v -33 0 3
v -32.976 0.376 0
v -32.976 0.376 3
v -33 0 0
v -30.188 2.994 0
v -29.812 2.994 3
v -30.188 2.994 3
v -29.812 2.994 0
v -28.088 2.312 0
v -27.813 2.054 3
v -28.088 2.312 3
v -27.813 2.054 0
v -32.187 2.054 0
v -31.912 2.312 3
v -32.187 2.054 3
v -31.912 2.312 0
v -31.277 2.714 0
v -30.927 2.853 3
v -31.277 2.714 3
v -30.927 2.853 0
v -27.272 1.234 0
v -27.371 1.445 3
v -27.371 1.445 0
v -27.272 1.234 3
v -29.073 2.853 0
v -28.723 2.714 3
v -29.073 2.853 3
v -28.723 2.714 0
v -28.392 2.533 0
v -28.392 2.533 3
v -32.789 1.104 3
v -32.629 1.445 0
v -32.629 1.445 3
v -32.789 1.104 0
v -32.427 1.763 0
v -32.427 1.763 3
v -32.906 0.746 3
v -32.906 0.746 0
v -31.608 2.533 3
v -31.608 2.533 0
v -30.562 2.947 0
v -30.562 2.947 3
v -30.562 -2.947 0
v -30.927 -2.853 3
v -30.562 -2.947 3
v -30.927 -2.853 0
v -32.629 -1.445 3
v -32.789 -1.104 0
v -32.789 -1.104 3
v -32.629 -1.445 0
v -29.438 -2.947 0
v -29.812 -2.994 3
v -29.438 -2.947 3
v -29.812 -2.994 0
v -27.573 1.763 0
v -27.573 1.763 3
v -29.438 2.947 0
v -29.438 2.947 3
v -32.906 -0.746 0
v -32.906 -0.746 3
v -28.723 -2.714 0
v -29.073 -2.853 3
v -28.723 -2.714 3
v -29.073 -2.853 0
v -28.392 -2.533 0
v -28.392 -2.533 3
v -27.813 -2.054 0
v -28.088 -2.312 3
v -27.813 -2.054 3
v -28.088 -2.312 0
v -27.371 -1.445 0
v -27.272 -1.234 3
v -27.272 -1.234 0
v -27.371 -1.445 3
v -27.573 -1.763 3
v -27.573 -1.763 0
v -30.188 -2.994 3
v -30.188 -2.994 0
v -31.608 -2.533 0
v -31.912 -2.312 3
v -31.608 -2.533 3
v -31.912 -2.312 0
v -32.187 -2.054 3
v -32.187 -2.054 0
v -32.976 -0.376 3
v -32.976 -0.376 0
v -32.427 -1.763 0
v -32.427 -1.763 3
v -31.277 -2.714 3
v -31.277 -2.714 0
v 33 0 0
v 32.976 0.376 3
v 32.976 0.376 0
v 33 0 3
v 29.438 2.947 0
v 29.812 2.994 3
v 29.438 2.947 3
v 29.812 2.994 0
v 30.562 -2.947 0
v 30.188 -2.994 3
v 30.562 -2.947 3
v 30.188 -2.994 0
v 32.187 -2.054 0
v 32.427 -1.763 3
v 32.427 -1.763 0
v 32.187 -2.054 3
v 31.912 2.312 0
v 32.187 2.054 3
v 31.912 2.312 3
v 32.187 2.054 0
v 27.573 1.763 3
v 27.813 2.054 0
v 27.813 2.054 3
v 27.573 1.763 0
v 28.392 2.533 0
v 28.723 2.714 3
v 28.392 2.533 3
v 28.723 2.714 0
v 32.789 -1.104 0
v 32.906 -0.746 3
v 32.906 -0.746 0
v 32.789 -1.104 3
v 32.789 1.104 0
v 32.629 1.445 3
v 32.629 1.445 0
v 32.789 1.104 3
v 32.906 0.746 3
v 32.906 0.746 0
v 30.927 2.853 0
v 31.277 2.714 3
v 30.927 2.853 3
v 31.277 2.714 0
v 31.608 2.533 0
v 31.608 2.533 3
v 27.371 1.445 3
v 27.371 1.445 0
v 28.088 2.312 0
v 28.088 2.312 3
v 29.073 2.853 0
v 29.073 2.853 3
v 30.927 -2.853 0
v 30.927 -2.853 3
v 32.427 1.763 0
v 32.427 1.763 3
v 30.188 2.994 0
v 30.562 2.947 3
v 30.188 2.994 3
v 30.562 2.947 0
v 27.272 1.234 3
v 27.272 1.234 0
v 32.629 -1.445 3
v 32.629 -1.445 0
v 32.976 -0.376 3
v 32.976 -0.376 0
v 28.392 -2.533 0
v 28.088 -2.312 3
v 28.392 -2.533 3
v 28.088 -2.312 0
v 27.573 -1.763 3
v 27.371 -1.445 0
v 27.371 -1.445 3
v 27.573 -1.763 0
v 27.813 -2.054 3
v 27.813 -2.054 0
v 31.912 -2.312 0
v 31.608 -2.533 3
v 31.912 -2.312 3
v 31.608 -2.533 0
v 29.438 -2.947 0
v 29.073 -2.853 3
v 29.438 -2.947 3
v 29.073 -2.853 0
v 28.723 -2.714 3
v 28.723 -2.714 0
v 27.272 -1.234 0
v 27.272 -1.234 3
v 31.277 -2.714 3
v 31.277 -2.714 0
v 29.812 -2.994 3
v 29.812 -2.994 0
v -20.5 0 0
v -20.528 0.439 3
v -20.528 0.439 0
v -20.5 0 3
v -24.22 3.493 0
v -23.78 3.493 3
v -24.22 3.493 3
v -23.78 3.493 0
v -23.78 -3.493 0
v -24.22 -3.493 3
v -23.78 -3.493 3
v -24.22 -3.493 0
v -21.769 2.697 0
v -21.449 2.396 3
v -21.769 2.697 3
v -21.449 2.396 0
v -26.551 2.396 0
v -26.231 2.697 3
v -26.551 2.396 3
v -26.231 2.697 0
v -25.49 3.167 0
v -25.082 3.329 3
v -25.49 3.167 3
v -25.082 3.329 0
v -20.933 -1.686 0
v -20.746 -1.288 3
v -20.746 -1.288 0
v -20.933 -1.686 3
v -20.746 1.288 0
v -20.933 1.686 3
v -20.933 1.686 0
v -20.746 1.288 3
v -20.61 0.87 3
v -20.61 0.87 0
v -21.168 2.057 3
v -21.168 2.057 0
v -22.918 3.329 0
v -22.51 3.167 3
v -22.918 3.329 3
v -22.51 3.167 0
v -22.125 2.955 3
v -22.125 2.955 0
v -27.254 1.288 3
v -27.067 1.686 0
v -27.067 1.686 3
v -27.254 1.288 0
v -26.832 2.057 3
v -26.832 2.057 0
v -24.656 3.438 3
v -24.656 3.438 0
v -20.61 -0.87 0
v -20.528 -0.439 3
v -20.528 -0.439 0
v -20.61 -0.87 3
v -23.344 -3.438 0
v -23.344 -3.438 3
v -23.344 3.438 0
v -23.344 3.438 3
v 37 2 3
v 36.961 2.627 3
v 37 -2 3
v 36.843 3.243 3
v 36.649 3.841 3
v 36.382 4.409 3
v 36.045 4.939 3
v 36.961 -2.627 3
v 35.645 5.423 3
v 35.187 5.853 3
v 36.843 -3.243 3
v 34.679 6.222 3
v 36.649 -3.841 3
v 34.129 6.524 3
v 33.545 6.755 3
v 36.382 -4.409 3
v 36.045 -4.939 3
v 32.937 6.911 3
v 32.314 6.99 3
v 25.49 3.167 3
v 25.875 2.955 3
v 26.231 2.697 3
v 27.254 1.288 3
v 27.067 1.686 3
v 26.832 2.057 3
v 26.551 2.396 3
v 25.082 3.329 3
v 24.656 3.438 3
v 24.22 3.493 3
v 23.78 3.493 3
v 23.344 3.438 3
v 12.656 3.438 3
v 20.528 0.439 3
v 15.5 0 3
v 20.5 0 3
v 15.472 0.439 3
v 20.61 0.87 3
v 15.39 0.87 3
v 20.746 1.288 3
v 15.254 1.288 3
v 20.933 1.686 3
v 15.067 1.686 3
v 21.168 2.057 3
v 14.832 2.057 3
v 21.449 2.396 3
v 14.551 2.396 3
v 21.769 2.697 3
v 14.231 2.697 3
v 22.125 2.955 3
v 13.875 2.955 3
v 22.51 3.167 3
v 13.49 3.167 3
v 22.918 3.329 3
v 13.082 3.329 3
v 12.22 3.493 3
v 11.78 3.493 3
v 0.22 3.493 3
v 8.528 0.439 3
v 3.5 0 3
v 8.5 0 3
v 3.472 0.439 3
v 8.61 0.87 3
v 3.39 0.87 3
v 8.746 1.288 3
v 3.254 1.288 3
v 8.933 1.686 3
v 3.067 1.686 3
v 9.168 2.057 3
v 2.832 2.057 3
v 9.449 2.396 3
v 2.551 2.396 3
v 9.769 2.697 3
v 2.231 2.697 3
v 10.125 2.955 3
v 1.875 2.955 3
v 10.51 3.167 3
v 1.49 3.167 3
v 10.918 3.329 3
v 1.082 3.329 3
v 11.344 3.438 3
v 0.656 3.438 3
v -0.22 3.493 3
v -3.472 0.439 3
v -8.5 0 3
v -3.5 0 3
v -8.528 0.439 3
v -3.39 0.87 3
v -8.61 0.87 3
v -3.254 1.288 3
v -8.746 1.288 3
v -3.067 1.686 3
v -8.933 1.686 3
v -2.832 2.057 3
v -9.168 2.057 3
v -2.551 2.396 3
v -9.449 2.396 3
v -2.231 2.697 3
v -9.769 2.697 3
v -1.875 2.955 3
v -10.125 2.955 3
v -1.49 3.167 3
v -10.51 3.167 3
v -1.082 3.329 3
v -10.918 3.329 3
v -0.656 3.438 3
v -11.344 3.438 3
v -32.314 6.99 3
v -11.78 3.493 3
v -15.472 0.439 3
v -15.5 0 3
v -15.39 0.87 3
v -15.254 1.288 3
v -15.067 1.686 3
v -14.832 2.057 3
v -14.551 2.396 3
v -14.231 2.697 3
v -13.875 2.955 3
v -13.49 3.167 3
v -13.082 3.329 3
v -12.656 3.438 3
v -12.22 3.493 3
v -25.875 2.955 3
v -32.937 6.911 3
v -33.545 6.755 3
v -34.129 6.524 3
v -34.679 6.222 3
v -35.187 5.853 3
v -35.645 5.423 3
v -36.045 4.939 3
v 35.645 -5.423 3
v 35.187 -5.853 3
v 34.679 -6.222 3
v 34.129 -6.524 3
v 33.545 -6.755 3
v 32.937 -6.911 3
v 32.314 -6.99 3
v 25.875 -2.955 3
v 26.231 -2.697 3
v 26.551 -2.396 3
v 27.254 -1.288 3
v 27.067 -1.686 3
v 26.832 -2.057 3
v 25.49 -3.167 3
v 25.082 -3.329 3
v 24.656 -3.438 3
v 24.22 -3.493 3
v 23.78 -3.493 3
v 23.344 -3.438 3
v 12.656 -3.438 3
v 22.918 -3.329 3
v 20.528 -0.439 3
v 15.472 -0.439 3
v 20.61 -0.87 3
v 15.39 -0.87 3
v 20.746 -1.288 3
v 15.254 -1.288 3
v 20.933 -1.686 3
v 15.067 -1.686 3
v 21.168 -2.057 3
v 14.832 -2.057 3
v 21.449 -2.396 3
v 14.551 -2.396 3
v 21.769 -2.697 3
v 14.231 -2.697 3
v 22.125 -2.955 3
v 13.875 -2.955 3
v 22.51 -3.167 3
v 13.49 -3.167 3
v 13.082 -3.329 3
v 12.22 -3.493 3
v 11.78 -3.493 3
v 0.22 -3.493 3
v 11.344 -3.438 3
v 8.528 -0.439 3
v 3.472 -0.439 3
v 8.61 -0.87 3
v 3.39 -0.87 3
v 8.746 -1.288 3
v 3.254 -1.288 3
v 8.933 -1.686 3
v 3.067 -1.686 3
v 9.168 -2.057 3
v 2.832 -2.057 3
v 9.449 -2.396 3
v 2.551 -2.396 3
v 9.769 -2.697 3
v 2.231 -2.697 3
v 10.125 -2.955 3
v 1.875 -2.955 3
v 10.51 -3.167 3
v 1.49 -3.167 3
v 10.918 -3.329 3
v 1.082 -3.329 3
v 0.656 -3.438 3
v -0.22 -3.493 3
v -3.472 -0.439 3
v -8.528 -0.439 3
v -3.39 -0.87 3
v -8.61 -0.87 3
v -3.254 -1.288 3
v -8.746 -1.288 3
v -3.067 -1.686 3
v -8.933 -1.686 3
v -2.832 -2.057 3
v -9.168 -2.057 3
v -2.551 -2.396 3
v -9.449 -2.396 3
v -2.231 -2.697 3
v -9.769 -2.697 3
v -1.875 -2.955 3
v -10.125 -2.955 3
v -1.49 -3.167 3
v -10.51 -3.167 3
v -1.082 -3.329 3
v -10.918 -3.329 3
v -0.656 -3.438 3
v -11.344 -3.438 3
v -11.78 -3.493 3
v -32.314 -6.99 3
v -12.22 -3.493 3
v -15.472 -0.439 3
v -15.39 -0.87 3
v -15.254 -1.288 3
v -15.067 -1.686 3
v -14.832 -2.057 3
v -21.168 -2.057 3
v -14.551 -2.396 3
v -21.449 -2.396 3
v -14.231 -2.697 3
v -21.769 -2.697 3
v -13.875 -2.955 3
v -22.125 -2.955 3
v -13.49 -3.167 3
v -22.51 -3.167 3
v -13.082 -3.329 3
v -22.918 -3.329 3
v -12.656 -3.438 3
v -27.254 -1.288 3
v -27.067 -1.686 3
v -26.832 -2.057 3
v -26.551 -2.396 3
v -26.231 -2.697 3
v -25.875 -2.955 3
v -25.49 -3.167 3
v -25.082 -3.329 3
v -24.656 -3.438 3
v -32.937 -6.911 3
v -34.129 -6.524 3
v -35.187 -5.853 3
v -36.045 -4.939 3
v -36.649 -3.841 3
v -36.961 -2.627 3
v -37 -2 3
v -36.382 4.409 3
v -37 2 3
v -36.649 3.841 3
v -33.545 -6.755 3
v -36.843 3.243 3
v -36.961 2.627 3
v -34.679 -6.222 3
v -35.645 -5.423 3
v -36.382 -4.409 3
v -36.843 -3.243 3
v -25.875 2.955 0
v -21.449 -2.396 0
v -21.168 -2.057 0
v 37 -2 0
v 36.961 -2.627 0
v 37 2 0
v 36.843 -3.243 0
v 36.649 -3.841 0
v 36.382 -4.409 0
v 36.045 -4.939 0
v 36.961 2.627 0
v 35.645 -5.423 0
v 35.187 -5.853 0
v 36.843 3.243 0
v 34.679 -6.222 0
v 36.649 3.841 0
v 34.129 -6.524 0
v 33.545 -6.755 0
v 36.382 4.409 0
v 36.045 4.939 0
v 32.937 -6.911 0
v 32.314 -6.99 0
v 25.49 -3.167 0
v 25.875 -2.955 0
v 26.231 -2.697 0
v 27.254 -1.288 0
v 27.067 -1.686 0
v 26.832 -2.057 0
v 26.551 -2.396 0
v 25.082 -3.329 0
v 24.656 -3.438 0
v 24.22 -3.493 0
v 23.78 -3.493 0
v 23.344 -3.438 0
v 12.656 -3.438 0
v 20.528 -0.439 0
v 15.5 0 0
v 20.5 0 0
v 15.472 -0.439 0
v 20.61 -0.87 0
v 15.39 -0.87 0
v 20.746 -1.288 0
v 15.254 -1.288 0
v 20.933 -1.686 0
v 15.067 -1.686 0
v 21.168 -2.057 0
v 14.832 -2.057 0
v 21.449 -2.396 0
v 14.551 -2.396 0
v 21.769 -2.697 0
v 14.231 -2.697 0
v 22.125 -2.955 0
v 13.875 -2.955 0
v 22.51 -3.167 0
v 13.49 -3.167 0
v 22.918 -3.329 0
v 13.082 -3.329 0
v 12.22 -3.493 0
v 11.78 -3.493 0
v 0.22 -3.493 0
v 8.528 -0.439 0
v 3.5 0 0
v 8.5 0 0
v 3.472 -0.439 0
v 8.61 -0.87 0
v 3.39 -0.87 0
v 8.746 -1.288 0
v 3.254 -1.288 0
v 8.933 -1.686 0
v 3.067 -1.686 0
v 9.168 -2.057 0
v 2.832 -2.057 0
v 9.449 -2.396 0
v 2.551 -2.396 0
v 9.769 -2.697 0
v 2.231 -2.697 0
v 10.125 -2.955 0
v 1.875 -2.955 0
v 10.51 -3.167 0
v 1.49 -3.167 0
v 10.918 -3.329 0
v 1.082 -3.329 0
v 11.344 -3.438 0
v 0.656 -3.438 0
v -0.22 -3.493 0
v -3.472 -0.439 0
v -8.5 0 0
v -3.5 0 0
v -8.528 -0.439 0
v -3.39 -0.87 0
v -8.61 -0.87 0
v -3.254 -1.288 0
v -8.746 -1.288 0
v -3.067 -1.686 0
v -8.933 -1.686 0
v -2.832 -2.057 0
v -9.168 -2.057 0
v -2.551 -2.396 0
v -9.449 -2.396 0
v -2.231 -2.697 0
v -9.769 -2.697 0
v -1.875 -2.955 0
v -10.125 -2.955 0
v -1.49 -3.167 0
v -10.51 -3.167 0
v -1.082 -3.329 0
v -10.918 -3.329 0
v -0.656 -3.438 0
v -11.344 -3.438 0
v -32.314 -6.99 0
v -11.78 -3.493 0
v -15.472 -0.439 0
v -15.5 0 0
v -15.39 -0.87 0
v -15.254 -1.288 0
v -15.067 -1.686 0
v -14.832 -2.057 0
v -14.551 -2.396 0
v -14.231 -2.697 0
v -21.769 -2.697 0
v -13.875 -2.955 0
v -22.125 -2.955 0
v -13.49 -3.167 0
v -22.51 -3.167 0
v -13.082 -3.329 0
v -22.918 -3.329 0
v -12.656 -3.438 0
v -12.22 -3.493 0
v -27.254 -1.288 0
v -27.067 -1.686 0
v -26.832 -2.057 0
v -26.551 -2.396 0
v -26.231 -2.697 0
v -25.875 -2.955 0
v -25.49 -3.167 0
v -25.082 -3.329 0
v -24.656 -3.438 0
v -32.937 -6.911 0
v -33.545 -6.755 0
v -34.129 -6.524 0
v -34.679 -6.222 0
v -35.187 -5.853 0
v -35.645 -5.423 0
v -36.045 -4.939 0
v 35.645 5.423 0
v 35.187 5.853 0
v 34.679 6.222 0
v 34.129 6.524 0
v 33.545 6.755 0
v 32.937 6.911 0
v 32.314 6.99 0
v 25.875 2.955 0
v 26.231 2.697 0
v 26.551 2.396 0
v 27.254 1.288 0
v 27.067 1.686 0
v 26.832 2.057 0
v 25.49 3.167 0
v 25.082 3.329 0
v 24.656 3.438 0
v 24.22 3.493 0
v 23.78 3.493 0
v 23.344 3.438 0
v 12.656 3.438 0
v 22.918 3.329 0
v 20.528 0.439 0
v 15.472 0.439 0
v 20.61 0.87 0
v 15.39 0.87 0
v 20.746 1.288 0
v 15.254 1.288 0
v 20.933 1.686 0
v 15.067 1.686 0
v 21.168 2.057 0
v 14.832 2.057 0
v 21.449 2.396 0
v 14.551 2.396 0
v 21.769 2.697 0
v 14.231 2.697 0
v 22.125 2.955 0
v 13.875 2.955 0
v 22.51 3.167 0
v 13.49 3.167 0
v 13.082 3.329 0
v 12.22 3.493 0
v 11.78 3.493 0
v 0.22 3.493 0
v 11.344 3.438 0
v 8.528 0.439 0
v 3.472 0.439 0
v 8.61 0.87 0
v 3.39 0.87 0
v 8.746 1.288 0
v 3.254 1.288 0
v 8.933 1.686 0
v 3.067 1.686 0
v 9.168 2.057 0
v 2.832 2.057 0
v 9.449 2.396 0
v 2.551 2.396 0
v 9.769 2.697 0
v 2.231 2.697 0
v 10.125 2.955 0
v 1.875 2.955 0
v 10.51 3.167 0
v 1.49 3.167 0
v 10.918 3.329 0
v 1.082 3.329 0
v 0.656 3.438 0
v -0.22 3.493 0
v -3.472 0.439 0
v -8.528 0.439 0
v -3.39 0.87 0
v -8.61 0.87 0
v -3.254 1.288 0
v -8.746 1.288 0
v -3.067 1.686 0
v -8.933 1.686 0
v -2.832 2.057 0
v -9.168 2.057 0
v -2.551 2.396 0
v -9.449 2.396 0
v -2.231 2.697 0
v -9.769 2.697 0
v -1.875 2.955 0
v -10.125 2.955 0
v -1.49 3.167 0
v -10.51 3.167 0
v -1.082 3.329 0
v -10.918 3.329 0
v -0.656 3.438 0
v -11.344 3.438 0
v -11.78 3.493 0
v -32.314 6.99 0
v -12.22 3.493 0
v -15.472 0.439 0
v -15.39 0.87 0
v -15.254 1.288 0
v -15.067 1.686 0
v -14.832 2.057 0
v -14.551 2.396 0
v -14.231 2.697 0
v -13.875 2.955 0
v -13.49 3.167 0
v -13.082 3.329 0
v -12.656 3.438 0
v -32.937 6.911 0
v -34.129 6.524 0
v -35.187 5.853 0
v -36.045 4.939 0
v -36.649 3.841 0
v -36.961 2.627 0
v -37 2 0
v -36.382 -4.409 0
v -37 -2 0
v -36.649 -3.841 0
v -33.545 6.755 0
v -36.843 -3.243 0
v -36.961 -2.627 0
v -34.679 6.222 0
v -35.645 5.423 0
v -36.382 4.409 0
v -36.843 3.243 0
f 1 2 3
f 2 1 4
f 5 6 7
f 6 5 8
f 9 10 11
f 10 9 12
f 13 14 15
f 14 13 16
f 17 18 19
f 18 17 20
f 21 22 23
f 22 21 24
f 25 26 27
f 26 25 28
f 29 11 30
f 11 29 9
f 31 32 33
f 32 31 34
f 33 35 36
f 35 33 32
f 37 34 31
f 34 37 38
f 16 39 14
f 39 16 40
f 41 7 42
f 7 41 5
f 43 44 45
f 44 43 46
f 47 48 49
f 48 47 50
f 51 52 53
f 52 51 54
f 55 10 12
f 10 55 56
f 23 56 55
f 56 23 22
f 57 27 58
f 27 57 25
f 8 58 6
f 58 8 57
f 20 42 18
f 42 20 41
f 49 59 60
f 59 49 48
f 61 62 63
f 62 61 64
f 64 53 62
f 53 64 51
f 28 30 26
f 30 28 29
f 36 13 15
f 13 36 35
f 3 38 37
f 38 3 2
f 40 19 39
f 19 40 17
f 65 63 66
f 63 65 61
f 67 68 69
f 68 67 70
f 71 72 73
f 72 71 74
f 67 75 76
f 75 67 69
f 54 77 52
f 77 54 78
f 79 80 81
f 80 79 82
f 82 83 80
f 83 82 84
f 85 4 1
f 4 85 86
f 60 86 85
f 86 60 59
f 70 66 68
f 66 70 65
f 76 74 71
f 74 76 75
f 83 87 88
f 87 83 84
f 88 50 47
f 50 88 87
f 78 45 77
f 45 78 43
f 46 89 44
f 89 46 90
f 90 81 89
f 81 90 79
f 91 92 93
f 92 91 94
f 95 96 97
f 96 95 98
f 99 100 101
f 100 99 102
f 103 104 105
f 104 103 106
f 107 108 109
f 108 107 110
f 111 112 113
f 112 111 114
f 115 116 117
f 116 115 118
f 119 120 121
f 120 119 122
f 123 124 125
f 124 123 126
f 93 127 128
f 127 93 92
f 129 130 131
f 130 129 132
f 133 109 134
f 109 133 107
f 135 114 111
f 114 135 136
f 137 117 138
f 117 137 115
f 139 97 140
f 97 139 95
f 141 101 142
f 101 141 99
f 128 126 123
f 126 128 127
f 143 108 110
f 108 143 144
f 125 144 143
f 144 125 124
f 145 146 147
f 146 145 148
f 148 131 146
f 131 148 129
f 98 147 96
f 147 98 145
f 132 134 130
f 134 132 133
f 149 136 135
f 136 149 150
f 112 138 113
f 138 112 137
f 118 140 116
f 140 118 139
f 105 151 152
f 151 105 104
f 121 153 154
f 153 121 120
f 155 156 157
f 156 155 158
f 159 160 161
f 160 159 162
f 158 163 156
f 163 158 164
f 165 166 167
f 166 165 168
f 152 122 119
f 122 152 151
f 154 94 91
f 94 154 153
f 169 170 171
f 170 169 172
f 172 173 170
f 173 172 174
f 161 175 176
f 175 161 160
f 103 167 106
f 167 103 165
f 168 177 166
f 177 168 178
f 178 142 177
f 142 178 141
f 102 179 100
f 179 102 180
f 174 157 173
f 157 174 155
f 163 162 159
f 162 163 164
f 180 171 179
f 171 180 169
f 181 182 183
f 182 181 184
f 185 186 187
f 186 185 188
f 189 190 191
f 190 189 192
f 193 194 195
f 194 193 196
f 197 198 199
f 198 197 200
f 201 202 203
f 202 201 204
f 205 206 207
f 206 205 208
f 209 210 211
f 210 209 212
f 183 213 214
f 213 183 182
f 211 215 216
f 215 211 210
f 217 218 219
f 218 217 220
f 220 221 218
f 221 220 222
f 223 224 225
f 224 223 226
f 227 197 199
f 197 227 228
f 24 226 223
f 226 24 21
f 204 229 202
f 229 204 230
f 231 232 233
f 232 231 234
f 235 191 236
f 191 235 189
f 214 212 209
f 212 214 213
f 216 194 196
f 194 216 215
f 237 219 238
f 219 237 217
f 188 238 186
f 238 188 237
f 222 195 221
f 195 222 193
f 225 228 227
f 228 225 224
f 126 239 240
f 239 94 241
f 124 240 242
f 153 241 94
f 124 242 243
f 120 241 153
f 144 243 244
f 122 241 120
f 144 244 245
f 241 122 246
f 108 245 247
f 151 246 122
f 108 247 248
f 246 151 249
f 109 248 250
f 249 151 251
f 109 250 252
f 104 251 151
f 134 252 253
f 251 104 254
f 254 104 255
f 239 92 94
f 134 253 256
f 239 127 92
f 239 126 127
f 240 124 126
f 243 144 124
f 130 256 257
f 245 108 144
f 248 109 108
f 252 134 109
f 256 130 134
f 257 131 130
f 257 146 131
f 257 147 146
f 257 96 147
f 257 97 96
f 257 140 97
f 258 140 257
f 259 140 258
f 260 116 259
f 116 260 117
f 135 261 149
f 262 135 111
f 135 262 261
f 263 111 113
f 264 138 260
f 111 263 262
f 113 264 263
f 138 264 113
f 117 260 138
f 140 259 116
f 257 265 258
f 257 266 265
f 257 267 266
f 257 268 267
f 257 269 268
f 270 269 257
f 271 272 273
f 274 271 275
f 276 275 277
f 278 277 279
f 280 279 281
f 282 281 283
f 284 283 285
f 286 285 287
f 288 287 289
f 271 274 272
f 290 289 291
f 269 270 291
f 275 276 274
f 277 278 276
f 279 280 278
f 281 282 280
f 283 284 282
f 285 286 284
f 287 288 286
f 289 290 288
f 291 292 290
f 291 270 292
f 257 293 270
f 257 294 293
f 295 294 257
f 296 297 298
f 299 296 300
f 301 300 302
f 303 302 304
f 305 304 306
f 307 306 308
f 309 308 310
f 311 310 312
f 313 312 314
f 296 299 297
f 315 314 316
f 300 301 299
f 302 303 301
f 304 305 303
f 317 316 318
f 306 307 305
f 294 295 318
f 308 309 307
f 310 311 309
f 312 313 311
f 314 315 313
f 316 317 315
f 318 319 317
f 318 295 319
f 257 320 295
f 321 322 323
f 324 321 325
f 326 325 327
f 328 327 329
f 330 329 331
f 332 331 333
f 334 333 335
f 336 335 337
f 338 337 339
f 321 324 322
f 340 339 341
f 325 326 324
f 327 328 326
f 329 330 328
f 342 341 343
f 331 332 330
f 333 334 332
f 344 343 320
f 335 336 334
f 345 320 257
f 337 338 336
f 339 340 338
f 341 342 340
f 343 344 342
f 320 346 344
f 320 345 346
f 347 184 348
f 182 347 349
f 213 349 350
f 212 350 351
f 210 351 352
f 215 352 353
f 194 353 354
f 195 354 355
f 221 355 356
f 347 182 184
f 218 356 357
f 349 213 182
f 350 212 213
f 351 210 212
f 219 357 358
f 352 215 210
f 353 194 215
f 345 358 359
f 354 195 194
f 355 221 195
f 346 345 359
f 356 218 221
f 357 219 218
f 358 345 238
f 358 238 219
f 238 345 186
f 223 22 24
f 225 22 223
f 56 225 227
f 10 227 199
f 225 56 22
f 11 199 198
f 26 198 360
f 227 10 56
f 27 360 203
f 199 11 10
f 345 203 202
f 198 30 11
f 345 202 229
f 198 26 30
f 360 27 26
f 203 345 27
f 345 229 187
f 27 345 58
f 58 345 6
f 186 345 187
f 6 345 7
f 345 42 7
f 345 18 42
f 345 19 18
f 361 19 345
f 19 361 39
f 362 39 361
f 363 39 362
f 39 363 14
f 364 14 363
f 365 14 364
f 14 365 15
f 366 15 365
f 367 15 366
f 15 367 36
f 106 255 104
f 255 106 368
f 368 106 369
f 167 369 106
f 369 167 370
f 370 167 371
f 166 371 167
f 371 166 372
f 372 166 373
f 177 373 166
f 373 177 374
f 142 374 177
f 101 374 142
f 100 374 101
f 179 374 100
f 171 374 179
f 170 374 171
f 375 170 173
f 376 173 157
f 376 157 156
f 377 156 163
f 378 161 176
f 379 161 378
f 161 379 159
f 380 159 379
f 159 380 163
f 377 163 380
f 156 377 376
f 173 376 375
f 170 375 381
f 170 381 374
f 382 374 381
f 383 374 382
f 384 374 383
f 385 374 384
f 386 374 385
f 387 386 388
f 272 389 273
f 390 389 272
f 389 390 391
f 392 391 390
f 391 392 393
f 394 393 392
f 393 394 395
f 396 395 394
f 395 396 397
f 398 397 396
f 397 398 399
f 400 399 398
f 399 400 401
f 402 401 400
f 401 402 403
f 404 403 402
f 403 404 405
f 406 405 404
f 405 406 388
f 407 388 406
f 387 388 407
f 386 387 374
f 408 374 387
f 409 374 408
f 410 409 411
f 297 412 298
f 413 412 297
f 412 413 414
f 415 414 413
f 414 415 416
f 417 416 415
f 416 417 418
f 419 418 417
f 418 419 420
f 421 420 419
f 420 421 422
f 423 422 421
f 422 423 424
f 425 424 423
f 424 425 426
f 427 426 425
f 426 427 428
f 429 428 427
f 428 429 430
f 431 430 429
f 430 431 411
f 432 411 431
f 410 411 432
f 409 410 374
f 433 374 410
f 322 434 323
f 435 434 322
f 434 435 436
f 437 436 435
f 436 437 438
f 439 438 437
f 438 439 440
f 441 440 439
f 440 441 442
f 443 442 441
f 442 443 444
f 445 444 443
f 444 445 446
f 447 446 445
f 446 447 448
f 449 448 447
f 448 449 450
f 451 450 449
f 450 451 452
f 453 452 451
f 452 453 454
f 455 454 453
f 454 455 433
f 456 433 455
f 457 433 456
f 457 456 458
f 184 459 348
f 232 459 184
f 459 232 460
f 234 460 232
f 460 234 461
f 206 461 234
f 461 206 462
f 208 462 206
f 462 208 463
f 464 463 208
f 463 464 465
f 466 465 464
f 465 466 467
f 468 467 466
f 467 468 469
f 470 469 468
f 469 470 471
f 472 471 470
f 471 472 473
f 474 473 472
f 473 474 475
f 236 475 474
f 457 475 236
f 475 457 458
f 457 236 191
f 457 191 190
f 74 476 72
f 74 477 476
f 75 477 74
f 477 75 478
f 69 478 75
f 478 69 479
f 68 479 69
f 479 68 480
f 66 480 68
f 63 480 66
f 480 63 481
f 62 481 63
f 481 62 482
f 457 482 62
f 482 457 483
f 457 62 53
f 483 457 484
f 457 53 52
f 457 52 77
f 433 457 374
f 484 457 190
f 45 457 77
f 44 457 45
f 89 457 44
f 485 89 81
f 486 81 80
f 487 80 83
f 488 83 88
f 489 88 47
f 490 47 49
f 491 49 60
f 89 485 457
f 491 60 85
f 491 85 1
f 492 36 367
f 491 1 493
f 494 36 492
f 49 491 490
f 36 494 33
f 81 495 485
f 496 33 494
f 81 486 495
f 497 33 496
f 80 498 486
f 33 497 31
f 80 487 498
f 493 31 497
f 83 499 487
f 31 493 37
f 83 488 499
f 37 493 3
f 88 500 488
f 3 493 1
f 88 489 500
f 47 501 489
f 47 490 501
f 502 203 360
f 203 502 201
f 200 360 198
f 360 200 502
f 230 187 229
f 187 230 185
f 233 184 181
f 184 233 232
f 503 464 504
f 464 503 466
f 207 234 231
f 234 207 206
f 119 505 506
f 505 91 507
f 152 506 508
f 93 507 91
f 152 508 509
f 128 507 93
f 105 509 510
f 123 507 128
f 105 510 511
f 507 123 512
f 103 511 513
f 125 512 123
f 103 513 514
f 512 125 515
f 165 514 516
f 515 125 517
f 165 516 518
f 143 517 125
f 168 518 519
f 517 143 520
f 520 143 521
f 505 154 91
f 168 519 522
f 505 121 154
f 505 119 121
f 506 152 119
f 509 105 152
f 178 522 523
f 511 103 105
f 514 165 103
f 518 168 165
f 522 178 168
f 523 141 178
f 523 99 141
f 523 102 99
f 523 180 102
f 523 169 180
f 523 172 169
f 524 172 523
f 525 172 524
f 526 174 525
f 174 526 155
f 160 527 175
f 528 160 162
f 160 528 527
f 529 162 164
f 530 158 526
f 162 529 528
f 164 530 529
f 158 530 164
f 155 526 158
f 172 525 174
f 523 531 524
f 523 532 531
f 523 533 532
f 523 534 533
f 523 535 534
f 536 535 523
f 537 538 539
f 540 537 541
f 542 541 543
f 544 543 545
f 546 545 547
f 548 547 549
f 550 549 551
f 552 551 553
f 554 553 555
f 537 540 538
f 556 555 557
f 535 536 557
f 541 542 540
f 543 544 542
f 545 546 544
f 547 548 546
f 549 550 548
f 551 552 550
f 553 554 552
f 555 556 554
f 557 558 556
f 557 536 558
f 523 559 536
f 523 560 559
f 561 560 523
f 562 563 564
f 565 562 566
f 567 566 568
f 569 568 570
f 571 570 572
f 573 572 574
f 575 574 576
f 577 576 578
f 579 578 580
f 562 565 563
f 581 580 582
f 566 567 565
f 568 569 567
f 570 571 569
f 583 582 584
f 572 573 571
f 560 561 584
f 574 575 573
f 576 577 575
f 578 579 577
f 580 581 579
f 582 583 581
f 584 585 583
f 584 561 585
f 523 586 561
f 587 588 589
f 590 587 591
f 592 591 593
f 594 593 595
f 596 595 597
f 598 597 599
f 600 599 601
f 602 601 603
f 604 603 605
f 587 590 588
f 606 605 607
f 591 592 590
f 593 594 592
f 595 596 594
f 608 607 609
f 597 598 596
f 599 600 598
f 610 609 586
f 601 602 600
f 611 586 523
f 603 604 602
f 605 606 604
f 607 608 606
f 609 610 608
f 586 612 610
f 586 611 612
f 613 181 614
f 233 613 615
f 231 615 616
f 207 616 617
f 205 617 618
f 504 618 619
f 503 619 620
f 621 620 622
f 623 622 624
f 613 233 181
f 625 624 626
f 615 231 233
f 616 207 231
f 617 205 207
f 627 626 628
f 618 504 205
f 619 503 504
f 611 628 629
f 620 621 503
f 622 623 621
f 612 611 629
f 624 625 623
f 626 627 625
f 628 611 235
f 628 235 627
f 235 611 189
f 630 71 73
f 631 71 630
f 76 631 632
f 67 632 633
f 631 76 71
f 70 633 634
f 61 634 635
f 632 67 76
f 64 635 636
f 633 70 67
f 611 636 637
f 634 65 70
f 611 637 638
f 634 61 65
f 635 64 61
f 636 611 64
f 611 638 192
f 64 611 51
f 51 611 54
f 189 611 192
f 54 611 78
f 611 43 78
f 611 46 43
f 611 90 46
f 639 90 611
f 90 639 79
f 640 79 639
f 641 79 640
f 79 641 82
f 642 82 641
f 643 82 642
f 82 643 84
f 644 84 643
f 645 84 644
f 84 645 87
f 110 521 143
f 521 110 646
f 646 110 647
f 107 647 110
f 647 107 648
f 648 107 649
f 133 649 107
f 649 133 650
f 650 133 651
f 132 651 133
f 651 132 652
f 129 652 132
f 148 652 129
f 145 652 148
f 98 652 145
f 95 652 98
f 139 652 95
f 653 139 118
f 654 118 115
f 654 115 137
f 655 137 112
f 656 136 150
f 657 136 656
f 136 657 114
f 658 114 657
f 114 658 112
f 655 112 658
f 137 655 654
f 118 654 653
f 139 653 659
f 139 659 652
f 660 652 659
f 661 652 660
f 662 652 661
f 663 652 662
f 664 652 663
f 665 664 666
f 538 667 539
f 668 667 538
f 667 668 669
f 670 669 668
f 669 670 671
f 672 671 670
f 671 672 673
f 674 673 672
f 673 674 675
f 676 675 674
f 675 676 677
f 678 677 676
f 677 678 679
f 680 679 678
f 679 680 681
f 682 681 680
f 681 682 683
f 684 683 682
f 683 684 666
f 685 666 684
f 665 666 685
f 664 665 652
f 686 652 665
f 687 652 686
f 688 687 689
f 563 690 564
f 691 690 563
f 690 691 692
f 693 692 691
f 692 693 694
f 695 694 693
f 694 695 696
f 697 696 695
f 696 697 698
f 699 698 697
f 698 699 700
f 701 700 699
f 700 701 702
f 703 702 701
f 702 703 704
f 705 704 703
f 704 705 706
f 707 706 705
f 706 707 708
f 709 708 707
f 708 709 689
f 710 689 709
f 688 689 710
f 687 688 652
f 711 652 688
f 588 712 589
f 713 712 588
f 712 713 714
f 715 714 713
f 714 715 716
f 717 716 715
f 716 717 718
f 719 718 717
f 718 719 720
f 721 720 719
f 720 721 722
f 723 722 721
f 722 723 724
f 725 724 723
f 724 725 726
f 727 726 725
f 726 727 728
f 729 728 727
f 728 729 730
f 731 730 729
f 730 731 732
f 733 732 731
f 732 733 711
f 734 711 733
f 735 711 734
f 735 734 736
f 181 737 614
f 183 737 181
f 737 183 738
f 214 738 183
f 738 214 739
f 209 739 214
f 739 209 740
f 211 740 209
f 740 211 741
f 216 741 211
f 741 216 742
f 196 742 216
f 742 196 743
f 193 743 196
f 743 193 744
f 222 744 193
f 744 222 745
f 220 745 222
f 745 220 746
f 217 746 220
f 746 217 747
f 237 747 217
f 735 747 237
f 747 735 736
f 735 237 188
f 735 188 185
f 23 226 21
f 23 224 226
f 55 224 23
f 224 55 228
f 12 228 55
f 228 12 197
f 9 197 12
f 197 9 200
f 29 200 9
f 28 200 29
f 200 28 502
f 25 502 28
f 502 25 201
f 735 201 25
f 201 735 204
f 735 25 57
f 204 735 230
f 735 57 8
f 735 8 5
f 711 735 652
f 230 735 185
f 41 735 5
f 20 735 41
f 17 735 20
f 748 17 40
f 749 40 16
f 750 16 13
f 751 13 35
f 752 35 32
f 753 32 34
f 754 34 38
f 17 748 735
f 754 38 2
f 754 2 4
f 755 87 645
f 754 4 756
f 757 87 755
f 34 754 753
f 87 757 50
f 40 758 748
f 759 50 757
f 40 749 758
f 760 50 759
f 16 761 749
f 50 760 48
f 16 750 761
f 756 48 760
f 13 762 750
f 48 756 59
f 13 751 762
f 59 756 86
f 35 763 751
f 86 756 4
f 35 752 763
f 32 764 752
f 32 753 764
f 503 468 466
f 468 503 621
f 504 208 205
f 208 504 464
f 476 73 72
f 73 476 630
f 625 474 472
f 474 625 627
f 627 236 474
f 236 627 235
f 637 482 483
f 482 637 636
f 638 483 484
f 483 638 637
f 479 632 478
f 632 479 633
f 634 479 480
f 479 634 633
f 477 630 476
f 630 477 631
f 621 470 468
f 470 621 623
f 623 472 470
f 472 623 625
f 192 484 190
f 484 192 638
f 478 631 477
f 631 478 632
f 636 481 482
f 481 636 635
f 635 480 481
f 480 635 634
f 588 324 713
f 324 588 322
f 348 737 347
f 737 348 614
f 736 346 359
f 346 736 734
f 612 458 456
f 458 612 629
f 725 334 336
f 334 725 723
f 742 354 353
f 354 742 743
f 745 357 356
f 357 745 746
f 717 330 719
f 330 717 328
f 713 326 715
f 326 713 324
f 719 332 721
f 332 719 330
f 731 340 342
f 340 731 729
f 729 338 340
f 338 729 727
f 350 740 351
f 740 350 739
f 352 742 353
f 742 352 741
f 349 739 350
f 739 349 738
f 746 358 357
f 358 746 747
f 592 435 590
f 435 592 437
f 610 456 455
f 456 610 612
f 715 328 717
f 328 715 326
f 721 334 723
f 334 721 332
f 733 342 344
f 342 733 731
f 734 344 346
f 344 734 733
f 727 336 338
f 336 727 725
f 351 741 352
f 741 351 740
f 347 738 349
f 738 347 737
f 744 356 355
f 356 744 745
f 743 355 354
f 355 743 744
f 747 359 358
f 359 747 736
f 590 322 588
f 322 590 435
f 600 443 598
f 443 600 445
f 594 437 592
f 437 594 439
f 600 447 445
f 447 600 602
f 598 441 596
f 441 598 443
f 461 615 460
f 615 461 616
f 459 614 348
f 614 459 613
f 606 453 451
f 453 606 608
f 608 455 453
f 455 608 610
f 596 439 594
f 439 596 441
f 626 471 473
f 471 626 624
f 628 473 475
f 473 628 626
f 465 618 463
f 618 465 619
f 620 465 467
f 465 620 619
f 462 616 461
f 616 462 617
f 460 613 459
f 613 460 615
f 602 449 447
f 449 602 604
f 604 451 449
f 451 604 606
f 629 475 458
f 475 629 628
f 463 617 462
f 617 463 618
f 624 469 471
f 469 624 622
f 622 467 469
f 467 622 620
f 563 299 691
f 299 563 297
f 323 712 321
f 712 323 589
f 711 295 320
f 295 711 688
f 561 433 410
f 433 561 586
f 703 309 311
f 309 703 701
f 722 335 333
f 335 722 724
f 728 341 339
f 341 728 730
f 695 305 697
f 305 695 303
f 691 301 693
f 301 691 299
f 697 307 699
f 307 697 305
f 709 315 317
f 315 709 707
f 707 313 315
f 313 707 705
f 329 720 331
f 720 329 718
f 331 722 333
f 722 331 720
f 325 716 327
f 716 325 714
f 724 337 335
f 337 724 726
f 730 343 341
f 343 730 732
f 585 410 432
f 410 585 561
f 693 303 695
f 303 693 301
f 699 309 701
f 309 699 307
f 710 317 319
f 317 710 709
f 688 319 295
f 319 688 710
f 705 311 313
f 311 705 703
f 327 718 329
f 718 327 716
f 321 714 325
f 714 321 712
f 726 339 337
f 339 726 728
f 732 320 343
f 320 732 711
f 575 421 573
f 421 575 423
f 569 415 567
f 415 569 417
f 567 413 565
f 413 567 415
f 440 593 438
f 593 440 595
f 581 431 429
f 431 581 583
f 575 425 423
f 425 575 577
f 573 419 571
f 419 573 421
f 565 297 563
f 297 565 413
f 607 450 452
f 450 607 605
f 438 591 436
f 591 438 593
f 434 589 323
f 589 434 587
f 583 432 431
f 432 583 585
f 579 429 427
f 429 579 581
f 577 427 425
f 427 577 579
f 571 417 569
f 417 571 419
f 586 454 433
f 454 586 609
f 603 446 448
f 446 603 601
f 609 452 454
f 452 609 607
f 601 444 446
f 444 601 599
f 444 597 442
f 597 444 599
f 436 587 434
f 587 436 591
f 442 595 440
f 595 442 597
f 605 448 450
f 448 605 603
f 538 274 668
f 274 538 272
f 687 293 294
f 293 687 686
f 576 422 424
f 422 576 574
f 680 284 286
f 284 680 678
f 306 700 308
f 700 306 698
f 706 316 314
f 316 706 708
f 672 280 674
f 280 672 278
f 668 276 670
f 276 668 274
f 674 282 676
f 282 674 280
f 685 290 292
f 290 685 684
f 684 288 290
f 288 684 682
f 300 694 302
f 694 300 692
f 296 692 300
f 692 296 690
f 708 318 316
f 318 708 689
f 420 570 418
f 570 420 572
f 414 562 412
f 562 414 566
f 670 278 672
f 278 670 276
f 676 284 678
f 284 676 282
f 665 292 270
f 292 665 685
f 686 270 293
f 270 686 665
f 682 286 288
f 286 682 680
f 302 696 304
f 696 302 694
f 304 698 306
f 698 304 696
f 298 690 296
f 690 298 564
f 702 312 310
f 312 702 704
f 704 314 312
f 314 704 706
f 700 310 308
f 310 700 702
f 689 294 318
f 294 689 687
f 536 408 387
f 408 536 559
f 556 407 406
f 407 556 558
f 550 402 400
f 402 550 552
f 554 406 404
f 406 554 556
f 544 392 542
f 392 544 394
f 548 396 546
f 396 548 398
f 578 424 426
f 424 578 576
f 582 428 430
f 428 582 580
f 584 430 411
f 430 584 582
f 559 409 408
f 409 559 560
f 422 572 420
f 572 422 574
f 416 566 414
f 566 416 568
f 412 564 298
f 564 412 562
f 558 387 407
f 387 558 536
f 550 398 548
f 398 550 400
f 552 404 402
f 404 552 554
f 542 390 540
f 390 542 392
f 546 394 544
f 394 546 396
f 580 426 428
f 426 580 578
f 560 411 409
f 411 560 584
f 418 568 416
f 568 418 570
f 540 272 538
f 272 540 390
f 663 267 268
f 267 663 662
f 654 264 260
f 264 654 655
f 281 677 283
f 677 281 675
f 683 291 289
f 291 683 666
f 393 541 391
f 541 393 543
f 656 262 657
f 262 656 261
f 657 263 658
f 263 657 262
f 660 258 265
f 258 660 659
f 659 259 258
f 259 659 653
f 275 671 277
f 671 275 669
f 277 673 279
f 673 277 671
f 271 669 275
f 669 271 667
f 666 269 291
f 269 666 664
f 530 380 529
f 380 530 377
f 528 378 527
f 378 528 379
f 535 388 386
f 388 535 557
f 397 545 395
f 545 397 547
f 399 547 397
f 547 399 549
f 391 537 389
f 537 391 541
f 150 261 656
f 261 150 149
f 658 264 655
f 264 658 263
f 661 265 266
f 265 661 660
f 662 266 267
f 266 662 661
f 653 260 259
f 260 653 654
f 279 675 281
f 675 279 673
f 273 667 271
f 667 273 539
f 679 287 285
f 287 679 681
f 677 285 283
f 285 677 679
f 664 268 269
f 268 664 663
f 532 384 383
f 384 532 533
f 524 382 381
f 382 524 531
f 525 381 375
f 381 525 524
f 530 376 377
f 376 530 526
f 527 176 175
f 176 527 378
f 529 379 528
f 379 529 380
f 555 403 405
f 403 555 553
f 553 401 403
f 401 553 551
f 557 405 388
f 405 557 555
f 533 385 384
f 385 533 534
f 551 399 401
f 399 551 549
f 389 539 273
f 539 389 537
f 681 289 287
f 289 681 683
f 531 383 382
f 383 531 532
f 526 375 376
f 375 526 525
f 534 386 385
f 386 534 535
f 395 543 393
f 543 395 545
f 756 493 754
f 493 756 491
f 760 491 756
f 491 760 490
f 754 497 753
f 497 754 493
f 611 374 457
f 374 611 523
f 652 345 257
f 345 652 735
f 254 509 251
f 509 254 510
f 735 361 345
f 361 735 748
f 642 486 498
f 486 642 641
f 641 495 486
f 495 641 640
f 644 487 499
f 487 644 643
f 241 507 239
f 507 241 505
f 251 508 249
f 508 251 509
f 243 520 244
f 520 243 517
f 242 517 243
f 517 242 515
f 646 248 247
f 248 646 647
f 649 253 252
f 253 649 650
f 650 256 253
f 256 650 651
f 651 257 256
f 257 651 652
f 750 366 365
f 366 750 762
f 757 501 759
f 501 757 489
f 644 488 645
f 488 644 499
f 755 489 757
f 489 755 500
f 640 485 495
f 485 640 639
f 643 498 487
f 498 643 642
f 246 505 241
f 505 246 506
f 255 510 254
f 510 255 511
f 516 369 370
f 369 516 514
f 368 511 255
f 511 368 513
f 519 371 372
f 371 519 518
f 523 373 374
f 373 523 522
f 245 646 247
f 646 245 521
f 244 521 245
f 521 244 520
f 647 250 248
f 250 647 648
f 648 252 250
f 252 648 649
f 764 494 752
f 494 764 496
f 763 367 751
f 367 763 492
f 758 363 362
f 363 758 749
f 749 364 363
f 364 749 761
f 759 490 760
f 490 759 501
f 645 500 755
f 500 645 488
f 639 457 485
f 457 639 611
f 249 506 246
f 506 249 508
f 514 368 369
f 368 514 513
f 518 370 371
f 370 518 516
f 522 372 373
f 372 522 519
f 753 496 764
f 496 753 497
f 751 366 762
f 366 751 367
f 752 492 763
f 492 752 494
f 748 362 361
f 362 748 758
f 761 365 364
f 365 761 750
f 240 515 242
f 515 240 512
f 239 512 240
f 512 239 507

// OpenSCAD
$fn = 50;


difference() {
	union() {
		hull() {
			translate(v = [-32.0000000000, 2.0000000000, 0]) {
				cylinder(h = 3, r = 5);
			}
			translate(v = [32.0000000000, 2.0000000000, 0]) {
				cylinder(h = 3, r = 5);
			}
			translate(v = [-32.0000000000, -2.0000000000, 0]) {
				cylinder(h = 3, r = 5);
			}
			translate(v = [32.0000000000, -2.0000000000, 0]) {
				cylinder(h = 3, r = 5);
			}
		}
	}
	union() {
		#translate(v = [-30.0000000000, 0.0000000000, -100.0000000000]) {
			cylinder(h = 200, r = 3.0000000000);
		}
		#translate(v = [-30.0000000000, 0.0000000000, -100.0000000000]) {
			cylinder(h = 200, r = 3.0000000000);
		}
		#translate(v = [30.0000000000, 0.0000000000, -100.0000000000]) {
			cylinder(h = 200, r = 3.0000000000);
		}
		#translate(v = [30.0000000000, 0.0000000000, -100.0000000000]) {
			cylinder(h = 200, r = 3.0000000000);
		}
		#translate(v = [-24.0000000000, 0, 0]) {
			cylinder(h = 3, r = 3.5000000000);
		}
		#translate(v = [-12.0000000000, 0, 0]) {
			cylinder(h = 3, r = 3.5000000000);
		}
		#cylinder(h = 3, r = 3.5000000000);
		#translate(v = [12.0000000000, 0, 0]) {
			cylinder(h = 3, r = 3.5000000000);
		}
		#translate(v = [24.0000000000, 0, 0]) {
			cylinder(h = 3, r = 3.5000000000);
		}
	}
}
